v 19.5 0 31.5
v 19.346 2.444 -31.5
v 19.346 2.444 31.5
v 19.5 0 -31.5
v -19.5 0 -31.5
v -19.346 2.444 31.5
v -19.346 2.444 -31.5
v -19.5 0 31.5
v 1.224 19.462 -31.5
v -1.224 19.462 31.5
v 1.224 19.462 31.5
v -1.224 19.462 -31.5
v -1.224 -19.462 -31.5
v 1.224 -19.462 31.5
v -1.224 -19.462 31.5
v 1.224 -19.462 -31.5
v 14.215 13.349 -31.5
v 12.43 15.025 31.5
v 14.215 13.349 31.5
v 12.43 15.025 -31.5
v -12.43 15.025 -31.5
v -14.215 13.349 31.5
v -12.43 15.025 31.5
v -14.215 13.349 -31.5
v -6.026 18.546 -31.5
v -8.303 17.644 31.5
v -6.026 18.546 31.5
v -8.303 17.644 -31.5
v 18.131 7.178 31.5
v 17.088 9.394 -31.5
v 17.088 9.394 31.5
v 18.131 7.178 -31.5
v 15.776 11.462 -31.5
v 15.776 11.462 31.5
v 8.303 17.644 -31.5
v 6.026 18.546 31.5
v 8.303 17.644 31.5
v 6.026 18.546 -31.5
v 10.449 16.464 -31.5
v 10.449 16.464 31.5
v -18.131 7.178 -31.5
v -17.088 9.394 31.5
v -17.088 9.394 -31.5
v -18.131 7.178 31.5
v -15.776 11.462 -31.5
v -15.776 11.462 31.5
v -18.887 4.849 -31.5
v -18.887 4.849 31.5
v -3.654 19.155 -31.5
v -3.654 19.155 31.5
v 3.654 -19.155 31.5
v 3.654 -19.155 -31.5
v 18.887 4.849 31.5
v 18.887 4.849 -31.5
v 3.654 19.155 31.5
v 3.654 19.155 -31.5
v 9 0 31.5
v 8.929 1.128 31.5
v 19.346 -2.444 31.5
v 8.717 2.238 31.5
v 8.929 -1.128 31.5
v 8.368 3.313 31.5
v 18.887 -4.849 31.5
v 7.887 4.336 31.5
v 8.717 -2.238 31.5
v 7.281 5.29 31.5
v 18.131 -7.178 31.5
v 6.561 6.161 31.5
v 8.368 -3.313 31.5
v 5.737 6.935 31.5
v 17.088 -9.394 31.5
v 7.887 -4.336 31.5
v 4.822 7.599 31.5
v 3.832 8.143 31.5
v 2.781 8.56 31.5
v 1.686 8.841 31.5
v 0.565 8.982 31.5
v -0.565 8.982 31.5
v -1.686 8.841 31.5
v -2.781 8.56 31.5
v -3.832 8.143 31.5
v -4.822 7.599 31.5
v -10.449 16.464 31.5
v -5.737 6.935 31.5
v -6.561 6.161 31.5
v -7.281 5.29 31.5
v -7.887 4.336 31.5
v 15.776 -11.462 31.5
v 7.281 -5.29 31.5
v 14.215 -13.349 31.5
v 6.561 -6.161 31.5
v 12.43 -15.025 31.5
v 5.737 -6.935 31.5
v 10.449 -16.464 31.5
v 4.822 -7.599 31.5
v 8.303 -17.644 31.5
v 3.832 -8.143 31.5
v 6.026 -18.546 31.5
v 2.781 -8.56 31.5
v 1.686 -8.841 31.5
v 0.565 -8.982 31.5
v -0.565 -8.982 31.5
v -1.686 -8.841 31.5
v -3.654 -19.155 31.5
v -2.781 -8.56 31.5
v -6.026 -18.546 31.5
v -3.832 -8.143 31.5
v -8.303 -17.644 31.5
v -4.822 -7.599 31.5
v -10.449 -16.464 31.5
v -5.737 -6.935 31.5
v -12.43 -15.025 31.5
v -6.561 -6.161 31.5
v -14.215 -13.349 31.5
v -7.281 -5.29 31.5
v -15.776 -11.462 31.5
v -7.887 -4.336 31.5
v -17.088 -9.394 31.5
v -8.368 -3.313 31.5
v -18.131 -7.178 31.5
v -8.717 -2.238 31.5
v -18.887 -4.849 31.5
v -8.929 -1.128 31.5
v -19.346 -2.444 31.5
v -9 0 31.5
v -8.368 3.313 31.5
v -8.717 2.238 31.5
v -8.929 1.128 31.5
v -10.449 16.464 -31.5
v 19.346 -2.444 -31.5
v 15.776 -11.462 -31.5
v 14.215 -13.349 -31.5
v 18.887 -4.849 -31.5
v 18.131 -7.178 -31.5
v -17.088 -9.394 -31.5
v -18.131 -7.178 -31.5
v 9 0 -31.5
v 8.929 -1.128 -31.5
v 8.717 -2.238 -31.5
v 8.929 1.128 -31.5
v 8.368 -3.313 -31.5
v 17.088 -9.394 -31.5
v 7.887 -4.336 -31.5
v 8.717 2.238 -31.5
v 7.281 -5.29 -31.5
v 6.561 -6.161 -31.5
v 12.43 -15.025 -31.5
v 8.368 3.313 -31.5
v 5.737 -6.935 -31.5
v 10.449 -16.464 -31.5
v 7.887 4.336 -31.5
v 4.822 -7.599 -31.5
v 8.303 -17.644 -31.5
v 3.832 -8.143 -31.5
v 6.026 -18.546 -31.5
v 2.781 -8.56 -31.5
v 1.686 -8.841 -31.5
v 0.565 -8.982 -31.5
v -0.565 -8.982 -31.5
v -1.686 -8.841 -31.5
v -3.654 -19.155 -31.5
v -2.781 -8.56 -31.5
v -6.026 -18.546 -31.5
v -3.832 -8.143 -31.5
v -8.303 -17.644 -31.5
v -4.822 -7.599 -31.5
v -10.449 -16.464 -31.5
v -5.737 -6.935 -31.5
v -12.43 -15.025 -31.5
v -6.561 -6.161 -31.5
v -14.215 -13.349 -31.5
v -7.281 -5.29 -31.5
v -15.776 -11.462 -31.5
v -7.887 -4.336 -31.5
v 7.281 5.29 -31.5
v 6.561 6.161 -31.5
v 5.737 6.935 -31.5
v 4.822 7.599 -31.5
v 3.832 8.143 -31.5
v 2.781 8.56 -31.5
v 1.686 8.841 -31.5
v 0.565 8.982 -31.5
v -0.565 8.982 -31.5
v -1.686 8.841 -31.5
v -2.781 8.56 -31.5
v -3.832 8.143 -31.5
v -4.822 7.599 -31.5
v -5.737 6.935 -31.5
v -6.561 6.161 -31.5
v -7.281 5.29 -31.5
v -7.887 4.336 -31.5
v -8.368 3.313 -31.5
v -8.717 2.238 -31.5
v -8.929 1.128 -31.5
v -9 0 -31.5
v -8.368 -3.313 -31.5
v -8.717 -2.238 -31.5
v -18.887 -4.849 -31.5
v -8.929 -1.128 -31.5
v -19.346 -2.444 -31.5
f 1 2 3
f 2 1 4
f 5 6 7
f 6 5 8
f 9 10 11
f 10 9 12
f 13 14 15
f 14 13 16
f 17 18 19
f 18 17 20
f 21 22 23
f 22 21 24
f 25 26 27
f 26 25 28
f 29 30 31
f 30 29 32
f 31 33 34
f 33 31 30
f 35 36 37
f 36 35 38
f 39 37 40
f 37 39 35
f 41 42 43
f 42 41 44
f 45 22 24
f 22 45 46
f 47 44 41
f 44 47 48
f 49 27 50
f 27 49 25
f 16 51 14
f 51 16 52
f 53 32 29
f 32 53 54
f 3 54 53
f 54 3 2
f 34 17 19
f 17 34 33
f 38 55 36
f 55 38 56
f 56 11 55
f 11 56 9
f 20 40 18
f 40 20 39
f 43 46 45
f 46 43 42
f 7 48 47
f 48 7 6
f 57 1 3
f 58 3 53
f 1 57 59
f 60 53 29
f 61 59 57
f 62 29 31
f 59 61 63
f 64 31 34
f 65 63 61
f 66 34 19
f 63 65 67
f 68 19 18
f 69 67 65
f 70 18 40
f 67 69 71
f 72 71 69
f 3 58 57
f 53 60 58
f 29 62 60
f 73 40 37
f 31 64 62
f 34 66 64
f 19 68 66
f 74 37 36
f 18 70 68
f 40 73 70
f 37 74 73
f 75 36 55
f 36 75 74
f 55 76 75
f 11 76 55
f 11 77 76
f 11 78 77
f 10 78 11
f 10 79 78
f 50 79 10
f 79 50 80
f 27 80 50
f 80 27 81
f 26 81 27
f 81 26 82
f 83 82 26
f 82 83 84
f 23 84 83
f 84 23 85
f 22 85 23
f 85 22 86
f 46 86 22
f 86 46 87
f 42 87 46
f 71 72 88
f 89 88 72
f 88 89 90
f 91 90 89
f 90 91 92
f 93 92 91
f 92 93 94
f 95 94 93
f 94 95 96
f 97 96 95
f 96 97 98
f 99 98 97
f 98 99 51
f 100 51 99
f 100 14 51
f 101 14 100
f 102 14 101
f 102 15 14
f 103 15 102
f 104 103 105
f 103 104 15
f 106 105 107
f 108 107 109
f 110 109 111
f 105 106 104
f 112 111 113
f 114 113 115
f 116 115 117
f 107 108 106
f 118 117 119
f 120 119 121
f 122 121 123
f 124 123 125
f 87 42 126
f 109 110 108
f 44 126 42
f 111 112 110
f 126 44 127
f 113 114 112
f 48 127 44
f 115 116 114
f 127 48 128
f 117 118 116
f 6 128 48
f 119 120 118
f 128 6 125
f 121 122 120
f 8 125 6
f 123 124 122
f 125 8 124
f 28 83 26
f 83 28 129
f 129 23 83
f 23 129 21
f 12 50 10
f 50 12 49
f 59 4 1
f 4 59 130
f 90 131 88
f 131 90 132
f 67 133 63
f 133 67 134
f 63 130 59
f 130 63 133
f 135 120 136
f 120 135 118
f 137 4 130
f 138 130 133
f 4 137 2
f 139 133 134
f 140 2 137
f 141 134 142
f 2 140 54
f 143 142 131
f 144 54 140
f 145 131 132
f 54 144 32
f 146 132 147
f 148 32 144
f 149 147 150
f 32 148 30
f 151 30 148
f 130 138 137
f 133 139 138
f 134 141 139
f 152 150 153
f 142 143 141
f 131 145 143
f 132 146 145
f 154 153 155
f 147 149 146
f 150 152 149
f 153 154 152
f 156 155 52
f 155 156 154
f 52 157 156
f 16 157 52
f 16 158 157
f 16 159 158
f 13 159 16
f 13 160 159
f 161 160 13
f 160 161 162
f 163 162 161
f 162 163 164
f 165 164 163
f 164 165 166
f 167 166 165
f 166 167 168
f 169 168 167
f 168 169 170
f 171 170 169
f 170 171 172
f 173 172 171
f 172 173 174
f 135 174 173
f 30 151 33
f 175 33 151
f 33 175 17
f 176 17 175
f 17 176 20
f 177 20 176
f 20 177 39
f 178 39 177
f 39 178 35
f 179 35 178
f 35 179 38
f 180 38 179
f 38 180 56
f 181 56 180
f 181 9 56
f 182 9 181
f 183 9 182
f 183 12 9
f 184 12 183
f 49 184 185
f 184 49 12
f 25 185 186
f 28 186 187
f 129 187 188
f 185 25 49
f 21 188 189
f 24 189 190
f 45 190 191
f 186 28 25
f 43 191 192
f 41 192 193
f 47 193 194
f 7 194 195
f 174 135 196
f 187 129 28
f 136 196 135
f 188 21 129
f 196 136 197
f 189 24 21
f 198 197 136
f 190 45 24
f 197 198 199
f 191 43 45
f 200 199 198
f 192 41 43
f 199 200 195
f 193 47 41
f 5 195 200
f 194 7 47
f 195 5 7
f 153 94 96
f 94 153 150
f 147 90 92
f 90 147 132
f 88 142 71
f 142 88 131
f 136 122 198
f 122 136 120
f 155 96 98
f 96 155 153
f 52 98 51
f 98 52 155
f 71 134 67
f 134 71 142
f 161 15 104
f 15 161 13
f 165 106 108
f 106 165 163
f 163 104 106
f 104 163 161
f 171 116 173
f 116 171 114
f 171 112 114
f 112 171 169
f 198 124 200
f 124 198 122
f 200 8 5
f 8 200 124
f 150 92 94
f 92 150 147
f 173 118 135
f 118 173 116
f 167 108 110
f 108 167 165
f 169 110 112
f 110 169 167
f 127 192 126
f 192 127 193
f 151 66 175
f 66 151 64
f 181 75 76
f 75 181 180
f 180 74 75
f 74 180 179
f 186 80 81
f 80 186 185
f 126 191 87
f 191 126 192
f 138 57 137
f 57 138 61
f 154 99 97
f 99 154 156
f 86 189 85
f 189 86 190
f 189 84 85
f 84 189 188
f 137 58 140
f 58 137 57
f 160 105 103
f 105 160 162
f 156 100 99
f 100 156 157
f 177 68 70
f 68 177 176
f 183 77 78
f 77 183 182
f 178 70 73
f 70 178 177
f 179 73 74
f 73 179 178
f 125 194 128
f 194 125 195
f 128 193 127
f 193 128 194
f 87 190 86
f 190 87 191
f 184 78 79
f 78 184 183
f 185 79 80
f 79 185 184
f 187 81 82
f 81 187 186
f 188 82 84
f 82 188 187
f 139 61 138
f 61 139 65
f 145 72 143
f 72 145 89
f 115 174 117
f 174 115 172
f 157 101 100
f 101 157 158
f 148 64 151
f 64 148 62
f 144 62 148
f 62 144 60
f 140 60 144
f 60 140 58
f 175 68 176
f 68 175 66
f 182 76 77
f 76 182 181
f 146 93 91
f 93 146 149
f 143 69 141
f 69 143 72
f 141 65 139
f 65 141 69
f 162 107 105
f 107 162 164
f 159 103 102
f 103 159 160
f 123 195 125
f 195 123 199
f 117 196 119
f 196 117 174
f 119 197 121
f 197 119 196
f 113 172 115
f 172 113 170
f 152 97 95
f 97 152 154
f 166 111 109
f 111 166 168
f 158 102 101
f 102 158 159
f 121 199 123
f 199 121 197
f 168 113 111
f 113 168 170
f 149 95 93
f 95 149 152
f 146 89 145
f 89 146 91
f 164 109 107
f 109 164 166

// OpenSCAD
$fn = 50;


difference() {
	union() {
		translate(v = [0, 0, -31.5000000000]) {
			cylinder(h = 63, r = 19.5000000000);
		}
	}
	union() {
		translate(v = [0, 0, -100.0000000000]) {
			cylinder(h = 200, r = 9);
		}
	}
}
